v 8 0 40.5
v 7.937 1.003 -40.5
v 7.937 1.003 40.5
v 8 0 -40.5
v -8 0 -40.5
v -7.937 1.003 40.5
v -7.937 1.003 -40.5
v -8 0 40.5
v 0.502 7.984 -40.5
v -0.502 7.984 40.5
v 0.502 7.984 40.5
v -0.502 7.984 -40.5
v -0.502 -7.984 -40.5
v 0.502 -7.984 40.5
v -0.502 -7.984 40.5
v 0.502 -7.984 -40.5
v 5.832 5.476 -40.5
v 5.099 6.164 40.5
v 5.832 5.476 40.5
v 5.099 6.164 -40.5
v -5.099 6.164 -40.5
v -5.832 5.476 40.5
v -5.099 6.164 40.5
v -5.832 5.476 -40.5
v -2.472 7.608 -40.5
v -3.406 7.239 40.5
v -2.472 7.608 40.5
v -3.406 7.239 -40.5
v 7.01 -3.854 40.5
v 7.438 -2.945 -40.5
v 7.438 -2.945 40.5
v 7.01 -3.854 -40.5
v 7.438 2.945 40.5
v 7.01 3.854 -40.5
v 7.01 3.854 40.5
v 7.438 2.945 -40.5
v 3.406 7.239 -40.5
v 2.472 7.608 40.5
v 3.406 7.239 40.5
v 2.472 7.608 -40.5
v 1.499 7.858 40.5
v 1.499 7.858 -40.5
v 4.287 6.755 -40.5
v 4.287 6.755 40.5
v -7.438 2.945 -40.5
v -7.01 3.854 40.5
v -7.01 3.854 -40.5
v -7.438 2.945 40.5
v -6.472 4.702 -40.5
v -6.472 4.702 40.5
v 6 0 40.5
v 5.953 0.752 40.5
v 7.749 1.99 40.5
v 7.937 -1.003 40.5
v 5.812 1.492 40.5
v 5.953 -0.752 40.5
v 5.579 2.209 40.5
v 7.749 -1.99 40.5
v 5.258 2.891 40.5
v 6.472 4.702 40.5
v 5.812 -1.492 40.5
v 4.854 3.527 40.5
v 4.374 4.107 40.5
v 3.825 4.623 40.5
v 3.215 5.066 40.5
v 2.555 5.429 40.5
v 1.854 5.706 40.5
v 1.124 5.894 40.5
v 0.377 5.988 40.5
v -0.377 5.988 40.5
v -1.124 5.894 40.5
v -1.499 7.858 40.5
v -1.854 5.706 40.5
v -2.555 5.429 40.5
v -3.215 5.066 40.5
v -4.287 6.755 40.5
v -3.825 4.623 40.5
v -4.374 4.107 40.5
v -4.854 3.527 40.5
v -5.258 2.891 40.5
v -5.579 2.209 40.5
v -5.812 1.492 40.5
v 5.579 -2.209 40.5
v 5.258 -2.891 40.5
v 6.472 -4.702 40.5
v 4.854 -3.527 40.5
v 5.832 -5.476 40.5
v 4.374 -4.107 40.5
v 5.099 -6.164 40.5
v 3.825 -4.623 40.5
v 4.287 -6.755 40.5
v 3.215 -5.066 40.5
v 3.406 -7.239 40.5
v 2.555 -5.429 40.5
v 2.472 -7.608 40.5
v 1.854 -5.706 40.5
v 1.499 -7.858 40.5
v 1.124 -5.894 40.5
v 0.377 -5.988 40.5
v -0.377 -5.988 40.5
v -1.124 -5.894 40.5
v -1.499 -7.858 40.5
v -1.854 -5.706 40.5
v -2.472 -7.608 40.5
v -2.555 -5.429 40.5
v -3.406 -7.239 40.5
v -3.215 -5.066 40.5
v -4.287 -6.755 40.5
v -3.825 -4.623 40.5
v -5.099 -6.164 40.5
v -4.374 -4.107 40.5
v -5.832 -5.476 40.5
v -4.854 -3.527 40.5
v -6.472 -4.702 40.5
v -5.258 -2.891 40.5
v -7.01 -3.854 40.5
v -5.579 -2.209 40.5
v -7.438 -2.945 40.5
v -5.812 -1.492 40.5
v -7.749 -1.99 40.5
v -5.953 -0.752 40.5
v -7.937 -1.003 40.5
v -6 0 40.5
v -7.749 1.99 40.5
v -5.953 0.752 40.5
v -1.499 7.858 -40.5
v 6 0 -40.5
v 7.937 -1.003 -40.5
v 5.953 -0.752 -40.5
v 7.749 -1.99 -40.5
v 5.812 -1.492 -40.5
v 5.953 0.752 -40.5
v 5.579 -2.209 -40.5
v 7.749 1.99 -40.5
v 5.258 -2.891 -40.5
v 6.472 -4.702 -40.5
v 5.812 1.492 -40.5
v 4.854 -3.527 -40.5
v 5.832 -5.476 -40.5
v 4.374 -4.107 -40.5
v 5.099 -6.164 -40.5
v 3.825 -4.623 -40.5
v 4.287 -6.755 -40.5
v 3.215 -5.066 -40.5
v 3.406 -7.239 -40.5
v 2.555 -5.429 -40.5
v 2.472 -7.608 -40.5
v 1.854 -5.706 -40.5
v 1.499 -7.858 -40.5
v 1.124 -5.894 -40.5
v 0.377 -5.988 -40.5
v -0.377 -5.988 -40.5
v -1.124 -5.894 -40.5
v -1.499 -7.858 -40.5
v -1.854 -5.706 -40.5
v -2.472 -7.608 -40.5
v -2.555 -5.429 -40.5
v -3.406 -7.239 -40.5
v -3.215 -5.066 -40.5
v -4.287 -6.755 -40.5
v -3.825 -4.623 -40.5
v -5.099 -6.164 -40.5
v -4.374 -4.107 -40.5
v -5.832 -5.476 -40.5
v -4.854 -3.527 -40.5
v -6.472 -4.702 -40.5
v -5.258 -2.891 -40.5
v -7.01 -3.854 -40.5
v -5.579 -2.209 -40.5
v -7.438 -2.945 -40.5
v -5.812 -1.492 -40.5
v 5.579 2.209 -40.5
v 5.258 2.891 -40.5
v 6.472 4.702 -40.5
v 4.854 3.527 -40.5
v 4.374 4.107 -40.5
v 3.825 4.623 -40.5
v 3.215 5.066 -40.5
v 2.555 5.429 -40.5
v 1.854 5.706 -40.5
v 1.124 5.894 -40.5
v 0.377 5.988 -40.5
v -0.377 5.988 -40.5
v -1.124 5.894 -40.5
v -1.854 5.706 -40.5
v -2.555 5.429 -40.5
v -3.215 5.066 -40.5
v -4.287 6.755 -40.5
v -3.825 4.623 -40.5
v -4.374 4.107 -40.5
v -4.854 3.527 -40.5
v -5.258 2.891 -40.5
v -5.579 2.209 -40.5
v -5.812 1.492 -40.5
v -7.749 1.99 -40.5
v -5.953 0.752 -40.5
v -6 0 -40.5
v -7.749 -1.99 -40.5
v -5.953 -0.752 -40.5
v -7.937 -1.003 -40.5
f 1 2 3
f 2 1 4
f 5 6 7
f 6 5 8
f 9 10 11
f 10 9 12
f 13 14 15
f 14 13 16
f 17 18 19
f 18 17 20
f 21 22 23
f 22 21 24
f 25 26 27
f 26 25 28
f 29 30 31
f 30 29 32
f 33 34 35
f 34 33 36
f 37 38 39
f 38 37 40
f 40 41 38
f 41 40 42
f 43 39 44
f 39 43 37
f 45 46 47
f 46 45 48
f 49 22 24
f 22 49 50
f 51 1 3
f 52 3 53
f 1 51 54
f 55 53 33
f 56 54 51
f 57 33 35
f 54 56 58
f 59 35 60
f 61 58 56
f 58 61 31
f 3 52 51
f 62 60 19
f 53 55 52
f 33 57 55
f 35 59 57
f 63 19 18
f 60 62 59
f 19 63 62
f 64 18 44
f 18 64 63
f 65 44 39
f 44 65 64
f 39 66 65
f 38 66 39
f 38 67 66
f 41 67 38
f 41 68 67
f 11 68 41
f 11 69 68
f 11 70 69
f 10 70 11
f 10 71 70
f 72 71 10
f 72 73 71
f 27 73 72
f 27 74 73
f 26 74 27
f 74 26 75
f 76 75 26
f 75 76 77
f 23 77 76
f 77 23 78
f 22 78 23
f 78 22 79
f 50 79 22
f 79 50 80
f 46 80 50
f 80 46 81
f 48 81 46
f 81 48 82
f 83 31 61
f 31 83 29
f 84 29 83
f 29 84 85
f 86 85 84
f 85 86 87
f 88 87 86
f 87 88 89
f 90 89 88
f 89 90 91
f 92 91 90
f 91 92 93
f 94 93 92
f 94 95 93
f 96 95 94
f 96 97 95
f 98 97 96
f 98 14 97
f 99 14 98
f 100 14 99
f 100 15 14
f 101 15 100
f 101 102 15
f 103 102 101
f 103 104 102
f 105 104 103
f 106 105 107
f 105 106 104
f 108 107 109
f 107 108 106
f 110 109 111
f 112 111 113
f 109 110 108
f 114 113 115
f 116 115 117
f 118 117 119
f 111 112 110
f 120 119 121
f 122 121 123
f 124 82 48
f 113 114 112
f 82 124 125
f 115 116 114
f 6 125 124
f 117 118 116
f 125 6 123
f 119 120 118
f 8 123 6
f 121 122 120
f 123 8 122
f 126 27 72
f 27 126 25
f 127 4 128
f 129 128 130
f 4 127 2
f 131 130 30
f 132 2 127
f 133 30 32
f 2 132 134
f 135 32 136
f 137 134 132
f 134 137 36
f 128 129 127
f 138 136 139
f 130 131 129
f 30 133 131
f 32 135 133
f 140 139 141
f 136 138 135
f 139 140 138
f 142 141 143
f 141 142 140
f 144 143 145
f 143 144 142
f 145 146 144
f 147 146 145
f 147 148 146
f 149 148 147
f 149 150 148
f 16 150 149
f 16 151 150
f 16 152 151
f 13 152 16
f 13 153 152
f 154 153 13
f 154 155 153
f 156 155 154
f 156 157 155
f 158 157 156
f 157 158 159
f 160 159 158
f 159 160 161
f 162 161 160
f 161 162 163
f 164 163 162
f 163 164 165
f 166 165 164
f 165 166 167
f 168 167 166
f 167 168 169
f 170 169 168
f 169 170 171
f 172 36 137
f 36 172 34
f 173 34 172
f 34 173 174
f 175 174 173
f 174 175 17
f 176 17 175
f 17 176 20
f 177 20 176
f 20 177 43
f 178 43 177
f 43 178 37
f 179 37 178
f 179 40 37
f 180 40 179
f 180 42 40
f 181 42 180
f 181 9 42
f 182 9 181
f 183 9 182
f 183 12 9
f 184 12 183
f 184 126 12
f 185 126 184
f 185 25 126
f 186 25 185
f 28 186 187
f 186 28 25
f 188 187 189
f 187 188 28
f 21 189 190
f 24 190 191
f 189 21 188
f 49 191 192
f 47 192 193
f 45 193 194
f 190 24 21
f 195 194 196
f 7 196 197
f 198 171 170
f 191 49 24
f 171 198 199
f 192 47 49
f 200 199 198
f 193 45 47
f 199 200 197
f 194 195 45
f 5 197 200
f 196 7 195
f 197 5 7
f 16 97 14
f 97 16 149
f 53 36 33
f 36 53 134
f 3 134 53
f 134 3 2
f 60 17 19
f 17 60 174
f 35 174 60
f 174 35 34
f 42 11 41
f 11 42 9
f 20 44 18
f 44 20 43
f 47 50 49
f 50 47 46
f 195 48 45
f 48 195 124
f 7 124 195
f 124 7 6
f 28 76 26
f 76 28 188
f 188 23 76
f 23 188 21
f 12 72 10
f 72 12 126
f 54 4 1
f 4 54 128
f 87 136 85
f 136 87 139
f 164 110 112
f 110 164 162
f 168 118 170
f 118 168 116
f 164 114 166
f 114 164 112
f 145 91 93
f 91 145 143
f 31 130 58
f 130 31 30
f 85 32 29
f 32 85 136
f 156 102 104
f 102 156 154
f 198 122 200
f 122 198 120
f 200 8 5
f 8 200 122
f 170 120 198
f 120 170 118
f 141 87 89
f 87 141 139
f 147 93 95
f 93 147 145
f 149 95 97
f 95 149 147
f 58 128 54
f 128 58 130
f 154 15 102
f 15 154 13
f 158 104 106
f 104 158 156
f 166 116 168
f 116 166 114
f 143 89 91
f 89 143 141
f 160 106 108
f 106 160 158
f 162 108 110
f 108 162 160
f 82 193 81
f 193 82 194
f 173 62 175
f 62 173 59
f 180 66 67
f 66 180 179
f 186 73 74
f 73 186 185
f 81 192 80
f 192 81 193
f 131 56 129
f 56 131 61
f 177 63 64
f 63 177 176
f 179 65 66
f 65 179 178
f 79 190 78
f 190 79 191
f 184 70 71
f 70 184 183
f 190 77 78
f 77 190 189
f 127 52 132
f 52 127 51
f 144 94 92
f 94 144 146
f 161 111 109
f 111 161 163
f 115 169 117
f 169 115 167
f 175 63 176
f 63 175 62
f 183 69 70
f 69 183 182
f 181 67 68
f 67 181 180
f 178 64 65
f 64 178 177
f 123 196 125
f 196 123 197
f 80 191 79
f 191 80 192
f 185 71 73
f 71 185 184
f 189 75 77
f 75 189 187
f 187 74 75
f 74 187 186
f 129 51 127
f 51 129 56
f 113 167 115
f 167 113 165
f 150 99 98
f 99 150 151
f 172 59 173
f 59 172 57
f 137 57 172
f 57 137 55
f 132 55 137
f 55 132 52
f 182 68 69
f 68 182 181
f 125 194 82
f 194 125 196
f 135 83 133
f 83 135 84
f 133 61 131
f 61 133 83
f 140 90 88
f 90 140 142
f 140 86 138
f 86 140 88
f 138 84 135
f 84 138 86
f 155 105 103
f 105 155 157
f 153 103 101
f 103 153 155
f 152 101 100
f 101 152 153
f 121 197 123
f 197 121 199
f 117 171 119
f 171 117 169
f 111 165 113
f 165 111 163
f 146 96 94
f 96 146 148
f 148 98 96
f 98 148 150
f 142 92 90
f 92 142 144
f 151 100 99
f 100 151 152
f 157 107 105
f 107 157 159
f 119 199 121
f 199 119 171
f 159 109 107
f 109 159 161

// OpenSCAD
$fn = 50;


difference() {
	union() {
		translate(v = [0, 0, -40.5000000000]) {
			cylinder(h = 81, r = 8.0000000000);
		}
	}
	union() {
		translate(v = [0, 0, -100.0000000000]) {
			cylinder(h = 200, r = 6);
		}
	}
}
